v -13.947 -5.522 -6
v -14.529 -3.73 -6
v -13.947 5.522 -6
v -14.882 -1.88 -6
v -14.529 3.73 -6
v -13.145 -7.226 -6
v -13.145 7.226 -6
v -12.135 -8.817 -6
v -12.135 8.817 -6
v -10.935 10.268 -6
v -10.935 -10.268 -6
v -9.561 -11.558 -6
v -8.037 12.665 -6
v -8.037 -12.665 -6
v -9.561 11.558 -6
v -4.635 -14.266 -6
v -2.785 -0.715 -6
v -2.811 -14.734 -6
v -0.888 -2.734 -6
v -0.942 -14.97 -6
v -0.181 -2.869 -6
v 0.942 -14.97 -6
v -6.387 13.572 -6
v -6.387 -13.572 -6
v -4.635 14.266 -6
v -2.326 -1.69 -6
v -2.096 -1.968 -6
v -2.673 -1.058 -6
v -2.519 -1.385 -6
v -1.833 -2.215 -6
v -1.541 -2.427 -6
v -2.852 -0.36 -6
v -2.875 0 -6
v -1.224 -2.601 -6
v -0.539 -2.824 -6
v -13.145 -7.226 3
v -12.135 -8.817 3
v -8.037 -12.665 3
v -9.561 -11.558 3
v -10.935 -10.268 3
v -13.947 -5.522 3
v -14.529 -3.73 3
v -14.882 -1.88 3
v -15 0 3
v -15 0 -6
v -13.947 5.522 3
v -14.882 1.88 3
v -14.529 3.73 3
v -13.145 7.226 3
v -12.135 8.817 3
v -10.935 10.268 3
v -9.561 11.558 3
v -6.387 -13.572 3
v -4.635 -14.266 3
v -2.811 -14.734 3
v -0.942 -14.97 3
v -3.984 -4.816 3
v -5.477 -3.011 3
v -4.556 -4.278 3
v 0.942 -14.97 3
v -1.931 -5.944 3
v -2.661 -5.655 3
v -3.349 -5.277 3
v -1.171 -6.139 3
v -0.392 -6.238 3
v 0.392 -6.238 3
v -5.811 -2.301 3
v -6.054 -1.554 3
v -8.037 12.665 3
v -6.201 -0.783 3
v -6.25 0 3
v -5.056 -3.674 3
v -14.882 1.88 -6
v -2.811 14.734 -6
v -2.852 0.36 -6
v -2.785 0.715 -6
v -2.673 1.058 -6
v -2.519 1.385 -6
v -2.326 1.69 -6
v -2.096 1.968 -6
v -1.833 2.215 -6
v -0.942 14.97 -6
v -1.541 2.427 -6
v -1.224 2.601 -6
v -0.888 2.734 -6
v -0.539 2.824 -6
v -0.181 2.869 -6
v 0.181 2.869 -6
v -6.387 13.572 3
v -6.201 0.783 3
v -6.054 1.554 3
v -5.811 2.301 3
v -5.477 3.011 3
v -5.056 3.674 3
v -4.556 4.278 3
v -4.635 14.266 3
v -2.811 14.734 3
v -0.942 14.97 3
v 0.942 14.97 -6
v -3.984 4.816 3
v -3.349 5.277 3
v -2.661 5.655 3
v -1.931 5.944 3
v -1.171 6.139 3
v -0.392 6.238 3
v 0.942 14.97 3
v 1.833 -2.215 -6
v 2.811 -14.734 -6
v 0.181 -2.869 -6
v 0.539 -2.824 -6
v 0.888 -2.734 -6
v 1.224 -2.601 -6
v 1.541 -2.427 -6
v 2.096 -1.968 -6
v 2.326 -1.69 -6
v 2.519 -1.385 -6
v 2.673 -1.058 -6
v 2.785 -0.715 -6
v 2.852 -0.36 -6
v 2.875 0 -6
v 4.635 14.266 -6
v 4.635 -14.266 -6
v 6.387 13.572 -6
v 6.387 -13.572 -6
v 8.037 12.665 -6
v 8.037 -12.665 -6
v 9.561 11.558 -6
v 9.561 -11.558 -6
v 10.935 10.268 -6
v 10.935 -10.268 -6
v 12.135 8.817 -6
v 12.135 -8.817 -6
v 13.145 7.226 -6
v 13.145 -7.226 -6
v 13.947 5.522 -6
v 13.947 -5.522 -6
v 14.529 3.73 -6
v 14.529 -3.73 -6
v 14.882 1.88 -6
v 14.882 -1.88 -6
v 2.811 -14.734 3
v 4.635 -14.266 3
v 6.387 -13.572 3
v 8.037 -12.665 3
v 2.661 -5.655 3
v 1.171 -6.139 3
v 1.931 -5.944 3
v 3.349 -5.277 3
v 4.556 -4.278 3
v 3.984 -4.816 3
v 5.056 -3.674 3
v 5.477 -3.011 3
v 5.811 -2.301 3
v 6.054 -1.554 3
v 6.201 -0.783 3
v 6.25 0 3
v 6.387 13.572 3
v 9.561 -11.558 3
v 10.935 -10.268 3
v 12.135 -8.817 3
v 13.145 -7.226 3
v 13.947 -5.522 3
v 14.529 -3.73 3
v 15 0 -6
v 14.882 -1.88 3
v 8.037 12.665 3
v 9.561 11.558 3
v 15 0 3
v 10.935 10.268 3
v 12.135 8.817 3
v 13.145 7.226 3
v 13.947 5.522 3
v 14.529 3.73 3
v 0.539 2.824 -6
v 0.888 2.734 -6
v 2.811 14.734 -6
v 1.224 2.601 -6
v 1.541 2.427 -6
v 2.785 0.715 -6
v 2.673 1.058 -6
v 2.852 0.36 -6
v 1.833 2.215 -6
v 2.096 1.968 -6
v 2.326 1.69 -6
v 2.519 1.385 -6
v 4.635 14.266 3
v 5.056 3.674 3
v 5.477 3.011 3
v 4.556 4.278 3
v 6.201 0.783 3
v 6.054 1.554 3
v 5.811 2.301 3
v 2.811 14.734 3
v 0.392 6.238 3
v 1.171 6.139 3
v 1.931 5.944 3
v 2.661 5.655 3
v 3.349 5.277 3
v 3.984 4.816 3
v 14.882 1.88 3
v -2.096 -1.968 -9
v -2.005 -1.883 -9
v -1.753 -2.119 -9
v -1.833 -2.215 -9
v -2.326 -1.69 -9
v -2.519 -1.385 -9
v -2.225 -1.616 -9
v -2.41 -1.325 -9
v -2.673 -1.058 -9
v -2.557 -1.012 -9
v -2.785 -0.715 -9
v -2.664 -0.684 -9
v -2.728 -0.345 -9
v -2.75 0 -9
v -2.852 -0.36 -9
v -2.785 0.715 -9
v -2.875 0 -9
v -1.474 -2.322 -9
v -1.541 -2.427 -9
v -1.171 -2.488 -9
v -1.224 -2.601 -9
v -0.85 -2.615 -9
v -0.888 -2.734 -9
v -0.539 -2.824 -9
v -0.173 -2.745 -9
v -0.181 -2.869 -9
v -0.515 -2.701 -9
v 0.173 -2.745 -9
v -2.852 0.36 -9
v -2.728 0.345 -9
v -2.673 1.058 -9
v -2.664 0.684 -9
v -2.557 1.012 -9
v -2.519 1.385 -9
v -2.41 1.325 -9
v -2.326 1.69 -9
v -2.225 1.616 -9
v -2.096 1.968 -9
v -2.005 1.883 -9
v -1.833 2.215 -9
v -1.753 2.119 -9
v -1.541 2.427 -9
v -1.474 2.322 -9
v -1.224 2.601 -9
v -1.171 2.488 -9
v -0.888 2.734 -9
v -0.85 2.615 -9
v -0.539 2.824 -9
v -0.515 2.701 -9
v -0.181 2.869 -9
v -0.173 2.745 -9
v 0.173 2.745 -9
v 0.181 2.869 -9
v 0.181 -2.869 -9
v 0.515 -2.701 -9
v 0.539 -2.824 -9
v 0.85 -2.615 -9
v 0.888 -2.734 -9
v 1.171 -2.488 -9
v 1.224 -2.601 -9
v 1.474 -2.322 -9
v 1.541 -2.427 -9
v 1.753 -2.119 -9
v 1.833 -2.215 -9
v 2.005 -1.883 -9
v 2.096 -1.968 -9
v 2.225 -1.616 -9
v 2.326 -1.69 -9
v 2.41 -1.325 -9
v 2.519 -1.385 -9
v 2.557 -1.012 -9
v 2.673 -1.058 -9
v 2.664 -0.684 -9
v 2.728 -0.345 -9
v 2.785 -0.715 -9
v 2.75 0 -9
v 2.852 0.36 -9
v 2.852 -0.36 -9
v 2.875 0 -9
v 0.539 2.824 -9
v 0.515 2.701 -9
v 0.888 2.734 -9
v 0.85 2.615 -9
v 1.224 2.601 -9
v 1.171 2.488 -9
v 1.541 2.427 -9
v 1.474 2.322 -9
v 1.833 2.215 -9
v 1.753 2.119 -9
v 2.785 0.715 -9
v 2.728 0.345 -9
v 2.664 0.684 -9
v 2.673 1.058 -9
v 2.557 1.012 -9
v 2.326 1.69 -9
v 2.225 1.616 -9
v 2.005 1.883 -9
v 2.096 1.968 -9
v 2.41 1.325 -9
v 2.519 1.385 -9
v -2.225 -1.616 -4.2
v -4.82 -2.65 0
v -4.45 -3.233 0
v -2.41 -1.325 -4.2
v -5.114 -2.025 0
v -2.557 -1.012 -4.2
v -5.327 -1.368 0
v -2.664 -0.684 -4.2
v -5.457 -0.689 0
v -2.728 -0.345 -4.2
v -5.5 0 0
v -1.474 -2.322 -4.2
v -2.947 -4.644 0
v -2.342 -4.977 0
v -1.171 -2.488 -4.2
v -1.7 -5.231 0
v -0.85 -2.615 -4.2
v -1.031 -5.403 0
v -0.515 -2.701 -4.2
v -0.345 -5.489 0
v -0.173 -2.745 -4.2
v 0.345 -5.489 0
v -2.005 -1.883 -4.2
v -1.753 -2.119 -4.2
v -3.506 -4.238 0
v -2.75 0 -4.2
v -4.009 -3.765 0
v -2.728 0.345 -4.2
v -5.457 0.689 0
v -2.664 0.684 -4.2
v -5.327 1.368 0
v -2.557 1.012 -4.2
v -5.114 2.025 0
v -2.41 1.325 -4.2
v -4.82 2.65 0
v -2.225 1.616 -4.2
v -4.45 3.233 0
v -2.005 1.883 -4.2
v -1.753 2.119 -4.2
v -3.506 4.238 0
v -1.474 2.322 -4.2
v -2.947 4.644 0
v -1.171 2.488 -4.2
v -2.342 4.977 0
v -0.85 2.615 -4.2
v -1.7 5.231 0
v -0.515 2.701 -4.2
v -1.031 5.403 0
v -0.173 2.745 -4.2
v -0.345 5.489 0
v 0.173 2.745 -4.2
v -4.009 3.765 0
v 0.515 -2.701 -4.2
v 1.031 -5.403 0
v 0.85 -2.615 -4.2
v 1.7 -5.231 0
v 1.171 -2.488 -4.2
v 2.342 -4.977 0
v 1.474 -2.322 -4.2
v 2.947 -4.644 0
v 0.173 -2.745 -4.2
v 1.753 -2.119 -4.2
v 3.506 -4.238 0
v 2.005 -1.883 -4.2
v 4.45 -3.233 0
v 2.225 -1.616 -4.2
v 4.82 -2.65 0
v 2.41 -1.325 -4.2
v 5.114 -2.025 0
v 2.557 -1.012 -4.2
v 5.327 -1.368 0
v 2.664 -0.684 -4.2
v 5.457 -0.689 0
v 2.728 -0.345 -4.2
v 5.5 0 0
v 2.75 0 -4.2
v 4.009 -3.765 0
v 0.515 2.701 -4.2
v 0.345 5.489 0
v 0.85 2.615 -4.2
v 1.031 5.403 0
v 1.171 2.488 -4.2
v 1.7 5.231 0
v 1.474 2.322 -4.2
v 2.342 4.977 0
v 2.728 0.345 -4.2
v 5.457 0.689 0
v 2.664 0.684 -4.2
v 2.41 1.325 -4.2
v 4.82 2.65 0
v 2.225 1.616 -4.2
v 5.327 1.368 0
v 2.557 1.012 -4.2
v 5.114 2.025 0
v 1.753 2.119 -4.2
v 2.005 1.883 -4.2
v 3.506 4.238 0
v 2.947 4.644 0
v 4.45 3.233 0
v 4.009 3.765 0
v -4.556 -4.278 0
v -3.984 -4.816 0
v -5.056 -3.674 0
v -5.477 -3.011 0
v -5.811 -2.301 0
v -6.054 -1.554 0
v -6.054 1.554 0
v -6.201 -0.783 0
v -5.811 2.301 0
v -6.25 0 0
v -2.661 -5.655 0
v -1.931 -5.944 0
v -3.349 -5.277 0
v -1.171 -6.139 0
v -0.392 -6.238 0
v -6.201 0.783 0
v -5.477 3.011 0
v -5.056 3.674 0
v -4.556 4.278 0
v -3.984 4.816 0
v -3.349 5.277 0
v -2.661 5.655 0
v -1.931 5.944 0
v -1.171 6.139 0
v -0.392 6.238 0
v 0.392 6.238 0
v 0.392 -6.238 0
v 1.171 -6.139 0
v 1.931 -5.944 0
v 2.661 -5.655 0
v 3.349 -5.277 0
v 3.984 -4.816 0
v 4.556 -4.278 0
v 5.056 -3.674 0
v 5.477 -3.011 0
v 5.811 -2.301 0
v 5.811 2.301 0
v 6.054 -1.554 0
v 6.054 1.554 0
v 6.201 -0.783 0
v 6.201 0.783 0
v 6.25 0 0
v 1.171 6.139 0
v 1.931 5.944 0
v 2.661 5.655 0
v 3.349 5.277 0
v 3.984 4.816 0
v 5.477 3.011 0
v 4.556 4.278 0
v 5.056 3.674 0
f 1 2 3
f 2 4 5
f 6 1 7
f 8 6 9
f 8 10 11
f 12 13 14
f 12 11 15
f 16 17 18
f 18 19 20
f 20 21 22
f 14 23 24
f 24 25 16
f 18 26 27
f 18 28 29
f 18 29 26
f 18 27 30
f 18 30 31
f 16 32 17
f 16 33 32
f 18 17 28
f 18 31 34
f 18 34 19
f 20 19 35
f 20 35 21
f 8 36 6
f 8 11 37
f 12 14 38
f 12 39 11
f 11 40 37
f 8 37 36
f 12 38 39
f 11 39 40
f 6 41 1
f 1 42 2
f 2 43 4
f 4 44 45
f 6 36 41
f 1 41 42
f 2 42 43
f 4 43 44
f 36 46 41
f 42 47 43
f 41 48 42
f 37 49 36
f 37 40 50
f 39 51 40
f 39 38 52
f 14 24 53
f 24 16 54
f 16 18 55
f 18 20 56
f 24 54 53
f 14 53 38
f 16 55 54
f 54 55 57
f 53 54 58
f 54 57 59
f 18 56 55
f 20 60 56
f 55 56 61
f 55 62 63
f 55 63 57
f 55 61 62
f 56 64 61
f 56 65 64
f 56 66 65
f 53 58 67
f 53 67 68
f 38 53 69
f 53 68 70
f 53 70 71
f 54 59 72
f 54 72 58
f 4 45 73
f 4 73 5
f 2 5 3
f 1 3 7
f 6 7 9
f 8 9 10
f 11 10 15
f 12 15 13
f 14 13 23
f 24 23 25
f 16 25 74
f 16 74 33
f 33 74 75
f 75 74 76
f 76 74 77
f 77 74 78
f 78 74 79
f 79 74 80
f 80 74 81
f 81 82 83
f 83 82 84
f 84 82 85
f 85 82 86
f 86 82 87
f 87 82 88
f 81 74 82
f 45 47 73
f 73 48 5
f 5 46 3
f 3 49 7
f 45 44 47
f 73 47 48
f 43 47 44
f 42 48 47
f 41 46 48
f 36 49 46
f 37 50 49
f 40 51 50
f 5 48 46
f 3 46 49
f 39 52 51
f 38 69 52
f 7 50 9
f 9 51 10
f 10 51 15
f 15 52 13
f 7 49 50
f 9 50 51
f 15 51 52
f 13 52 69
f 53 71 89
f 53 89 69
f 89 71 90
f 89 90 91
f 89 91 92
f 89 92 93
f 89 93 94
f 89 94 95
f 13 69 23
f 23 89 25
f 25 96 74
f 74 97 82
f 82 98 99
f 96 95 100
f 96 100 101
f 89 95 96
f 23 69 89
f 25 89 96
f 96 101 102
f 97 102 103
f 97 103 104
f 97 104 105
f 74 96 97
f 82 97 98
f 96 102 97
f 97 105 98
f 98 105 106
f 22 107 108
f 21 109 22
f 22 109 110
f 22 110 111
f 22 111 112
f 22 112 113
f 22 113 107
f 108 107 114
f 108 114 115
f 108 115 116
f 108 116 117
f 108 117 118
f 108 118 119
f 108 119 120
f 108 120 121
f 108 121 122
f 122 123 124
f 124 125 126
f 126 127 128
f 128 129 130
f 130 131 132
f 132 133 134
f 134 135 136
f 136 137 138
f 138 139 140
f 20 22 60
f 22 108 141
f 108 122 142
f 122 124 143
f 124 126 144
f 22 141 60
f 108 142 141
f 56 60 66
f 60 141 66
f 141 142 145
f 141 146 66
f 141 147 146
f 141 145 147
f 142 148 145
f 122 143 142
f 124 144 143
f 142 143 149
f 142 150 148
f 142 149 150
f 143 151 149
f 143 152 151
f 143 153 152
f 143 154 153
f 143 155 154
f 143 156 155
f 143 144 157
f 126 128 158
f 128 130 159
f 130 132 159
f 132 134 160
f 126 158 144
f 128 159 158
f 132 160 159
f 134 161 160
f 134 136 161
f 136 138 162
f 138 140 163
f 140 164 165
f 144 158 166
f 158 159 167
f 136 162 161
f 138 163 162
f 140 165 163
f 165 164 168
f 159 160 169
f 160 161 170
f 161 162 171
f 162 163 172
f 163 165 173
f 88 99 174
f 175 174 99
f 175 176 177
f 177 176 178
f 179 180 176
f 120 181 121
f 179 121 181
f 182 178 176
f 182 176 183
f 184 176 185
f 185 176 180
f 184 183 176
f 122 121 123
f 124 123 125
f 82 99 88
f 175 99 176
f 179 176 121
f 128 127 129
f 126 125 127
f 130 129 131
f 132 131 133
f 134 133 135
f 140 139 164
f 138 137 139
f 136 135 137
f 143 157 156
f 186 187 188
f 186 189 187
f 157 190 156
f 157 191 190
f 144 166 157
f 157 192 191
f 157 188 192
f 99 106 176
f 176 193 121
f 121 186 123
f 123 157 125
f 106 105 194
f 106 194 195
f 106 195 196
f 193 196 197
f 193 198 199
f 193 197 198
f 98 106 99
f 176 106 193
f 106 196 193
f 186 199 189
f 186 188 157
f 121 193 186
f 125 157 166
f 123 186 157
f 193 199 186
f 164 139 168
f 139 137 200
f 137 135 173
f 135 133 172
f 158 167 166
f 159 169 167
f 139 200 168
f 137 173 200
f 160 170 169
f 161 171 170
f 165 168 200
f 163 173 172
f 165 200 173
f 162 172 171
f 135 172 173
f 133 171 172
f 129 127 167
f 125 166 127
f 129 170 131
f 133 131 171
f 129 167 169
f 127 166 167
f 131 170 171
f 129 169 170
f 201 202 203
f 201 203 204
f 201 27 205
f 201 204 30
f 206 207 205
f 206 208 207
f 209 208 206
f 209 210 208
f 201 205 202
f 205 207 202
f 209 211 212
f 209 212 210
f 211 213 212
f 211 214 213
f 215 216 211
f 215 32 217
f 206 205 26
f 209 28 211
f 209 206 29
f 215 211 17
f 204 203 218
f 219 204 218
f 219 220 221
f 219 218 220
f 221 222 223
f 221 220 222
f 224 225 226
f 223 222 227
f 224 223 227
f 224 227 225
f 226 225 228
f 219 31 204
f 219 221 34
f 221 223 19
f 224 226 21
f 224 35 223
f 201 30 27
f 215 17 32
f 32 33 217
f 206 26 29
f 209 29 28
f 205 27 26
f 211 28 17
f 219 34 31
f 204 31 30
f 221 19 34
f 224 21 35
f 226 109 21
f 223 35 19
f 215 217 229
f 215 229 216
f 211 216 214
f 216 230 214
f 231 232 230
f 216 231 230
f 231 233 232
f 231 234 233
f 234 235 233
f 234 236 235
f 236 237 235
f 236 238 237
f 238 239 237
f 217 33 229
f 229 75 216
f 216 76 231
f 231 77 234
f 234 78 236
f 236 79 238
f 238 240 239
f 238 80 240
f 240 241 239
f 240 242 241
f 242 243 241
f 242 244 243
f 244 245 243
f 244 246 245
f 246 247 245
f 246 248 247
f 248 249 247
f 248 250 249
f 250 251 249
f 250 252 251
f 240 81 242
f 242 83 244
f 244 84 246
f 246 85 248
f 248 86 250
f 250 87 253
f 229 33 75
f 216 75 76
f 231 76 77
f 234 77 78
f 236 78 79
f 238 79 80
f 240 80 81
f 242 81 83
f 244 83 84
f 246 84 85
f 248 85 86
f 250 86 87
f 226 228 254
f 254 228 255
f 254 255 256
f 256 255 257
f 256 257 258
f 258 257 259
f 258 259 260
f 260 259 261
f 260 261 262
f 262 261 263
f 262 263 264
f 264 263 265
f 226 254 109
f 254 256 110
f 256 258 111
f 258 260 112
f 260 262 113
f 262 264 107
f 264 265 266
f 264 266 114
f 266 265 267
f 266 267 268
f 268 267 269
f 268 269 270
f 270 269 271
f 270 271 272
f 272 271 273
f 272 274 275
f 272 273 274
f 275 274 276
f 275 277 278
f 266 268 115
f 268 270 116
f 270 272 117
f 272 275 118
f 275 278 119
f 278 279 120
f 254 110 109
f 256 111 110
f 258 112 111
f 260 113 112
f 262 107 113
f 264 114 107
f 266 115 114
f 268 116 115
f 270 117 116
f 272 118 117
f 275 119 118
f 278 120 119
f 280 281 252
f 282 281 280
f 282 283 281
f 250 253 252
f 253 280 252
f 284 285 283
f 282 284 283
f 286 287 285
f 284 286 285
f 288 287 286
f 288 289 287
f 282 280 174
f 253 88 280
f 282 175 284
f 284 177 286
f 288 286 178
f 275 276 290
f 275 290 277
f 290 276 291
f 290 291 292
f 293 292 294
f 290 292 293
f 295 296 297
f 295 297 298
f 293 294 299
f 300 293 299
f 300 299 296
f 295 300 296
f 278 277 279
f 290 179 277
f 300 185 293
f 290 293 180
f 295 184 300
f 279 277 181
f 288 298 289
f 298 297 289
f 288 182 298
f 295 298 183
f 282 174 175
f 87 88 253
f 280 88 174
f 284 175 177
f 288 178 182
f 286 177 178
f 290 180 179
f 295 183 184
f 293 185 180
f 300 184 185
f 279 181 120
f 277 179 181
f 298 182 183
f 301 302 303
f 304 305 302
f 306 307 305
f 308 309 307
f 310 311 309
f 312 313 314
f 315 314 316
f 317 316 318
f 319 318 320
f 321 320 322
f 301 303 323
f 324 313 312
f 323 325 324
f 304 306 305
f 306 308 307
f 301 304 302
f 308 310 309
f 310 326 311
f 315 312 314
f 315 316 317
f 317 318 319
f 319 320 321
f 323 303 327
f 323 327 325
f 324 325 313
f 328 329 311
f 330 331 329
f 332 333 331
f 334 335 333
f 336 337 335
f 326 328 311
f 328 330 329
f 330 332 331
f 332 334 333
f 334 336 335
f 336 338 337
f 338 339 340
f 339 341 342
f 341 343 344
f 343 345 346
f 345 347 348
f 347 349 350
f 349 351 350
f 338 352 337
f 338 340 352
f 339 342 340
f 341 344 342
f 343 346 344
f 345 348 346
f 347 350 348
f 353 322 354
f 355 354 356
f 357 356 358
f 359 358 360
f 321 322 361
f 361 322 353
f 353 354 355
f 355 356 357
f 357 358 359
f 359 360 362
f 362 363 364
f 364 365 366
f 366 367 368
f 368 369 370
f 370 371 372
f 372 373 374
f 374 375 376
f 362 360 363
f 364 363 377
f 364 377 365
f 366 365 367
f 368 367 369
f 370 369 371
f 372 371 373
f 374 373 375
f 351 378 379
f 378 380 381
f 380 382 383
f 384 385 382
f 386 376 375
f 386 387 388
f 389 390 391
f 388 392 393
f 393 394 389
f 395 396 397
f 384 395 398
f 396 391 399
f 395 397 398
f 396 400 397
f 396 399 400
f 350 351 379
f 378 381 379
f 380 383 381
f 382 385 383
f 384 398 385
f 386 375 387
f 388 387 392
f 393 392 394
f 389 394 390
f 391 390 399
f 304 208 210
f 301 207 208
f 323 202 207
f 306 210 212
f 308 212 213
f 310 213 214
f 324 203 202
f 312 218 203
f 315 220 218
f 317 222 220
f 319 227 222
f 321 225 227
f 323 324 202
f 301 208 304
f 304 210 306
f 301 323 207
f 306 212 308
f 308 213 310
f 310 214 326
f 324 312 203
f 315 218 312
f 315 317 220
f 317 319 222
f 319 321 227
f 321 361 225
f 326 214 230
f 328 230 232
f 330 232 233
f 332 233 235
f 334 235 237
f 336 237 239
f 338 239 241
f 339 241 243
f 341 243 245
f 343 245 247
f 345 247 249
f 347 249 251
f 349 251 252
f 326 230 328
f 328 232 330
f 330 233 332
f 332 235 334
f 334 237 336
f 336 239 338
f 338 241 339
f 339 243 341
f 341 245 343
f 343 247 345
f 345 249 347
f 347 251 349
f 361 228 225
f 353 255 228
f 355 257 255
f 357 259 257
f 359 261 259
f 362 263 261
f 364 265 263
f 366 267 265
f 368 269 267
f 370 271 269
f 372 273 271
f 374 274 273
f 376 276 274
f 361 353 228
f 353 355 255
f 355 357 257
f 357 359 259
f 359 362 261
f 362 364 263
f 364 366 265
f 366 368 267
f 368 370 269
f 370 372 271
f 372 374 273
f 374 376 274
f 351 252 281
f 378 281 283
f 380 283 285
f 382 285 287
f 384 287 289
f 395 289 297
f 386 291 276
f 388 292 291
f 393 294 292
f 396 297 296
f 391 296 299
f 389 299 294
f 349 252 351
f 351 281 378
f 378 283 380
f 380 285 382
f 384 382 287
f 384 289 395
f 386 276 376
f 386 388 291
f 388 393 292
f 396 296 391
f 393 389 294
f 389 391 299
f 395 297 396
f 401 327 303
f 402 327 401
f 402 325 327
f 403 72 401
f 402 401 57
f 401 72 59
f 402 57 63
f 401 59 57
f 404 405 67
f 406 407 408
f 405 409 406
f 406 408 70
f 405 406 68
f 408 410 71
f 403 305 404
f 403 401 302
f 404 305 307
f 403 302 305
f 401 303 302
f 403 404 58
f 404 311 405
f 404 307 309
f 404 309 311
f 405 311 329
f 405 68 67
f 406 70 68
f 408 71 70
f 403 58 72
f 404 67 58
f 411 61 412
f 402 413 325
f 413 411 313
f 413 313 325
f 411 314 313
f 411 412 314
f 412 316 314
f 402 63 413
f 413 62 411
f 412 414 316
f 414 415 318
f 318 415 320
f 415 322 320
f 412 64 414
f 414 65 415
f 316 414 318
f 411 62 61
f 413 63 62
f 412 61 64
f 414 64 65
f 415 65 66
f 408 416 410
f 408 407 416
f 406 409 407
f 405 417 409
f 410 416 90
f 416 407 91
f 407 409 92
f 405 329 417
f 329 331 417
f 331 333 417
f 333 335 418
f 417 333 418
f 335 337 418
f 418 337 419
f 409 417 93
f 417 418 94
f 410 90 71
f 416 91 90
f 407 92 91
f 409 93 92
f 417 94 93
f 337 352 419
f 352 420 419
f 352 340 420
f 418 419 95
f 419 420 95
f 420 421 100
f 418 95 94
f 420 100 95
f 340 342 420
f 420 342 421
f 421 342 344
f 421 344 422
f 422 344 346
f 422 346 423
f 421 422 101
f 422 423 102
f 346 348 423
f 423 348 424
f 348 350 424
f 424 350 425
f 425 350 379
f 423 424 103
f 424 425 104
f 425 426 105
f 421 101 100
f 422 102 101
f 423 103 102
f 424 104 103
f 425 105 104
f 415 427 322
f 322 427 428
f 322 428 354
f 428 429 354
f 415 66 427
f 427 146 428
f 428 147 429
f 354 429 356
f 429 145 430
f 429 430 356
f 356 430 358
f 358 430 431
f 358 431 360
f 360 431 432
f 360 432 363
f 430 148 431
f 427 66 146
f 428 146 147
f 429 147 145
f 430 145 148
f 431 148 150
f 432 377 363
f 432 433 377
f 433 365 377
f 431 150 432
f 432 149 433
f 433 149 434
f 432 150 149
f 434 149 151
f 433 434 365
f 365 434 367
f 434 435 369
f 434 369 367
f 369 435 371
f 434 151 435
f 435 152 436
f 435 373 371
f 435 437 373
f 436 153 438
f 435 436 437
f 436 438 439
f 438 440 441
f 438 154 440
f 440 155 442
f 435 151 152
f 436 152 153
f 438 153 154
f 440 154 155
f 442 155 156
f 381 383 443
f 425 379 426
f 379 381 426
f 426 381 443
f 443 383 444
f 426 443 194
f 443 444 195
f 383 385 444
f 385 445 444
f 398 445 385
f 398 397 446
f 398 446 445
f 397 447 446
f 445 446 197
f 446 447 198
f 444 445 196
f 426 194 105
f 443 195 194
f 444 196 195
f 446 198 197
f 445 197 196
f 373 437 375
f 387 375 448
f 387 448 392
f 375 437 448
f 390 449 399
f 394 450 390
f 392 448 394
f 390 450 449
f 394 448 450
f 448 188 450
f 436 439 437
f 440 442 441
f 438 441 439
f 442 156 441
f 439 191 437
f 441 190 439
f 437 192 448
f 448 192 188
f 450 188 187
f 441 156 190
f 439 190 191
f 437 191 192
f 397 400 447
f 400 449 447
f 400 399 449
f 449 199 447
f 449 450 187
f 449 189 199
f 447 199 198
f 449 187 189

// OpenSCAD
$fn = 50;

difference() {
	union() {
		translate(v = [0, 0, -6.0]) {
			cylinder(h = 9, r = 15.0);
		}
		#translate(v = [0, 0, -9.0]) {
			cylinder(h = 9, r = 2.875);
		}
	}
	union() {
		translate(v = [0, 0, 0]) {
			rotate(a = [0, 0, 0]) {
				difference() {
					union() {
						translate(v = [0, 0, -9.0]) {
							cylinder(h = 9, r = 2.25);
						}
						translate(v = [0, 0, -4.2]) {
							cylinder(h = 4.2, r1 = 2.75, r2 = 5.5);
						}
						translate(v = [0, 0, -9.0]) {
							cylinder(h = 9, r = 2.75);
						}
						translate(v = [0, 0, -9.0]) {
							cylinder(h = 9, r = 2.25);
						}
					}
					union();
				}
			}
		}
		#cylinder(h = 3, r = 6.25);
	}
}
